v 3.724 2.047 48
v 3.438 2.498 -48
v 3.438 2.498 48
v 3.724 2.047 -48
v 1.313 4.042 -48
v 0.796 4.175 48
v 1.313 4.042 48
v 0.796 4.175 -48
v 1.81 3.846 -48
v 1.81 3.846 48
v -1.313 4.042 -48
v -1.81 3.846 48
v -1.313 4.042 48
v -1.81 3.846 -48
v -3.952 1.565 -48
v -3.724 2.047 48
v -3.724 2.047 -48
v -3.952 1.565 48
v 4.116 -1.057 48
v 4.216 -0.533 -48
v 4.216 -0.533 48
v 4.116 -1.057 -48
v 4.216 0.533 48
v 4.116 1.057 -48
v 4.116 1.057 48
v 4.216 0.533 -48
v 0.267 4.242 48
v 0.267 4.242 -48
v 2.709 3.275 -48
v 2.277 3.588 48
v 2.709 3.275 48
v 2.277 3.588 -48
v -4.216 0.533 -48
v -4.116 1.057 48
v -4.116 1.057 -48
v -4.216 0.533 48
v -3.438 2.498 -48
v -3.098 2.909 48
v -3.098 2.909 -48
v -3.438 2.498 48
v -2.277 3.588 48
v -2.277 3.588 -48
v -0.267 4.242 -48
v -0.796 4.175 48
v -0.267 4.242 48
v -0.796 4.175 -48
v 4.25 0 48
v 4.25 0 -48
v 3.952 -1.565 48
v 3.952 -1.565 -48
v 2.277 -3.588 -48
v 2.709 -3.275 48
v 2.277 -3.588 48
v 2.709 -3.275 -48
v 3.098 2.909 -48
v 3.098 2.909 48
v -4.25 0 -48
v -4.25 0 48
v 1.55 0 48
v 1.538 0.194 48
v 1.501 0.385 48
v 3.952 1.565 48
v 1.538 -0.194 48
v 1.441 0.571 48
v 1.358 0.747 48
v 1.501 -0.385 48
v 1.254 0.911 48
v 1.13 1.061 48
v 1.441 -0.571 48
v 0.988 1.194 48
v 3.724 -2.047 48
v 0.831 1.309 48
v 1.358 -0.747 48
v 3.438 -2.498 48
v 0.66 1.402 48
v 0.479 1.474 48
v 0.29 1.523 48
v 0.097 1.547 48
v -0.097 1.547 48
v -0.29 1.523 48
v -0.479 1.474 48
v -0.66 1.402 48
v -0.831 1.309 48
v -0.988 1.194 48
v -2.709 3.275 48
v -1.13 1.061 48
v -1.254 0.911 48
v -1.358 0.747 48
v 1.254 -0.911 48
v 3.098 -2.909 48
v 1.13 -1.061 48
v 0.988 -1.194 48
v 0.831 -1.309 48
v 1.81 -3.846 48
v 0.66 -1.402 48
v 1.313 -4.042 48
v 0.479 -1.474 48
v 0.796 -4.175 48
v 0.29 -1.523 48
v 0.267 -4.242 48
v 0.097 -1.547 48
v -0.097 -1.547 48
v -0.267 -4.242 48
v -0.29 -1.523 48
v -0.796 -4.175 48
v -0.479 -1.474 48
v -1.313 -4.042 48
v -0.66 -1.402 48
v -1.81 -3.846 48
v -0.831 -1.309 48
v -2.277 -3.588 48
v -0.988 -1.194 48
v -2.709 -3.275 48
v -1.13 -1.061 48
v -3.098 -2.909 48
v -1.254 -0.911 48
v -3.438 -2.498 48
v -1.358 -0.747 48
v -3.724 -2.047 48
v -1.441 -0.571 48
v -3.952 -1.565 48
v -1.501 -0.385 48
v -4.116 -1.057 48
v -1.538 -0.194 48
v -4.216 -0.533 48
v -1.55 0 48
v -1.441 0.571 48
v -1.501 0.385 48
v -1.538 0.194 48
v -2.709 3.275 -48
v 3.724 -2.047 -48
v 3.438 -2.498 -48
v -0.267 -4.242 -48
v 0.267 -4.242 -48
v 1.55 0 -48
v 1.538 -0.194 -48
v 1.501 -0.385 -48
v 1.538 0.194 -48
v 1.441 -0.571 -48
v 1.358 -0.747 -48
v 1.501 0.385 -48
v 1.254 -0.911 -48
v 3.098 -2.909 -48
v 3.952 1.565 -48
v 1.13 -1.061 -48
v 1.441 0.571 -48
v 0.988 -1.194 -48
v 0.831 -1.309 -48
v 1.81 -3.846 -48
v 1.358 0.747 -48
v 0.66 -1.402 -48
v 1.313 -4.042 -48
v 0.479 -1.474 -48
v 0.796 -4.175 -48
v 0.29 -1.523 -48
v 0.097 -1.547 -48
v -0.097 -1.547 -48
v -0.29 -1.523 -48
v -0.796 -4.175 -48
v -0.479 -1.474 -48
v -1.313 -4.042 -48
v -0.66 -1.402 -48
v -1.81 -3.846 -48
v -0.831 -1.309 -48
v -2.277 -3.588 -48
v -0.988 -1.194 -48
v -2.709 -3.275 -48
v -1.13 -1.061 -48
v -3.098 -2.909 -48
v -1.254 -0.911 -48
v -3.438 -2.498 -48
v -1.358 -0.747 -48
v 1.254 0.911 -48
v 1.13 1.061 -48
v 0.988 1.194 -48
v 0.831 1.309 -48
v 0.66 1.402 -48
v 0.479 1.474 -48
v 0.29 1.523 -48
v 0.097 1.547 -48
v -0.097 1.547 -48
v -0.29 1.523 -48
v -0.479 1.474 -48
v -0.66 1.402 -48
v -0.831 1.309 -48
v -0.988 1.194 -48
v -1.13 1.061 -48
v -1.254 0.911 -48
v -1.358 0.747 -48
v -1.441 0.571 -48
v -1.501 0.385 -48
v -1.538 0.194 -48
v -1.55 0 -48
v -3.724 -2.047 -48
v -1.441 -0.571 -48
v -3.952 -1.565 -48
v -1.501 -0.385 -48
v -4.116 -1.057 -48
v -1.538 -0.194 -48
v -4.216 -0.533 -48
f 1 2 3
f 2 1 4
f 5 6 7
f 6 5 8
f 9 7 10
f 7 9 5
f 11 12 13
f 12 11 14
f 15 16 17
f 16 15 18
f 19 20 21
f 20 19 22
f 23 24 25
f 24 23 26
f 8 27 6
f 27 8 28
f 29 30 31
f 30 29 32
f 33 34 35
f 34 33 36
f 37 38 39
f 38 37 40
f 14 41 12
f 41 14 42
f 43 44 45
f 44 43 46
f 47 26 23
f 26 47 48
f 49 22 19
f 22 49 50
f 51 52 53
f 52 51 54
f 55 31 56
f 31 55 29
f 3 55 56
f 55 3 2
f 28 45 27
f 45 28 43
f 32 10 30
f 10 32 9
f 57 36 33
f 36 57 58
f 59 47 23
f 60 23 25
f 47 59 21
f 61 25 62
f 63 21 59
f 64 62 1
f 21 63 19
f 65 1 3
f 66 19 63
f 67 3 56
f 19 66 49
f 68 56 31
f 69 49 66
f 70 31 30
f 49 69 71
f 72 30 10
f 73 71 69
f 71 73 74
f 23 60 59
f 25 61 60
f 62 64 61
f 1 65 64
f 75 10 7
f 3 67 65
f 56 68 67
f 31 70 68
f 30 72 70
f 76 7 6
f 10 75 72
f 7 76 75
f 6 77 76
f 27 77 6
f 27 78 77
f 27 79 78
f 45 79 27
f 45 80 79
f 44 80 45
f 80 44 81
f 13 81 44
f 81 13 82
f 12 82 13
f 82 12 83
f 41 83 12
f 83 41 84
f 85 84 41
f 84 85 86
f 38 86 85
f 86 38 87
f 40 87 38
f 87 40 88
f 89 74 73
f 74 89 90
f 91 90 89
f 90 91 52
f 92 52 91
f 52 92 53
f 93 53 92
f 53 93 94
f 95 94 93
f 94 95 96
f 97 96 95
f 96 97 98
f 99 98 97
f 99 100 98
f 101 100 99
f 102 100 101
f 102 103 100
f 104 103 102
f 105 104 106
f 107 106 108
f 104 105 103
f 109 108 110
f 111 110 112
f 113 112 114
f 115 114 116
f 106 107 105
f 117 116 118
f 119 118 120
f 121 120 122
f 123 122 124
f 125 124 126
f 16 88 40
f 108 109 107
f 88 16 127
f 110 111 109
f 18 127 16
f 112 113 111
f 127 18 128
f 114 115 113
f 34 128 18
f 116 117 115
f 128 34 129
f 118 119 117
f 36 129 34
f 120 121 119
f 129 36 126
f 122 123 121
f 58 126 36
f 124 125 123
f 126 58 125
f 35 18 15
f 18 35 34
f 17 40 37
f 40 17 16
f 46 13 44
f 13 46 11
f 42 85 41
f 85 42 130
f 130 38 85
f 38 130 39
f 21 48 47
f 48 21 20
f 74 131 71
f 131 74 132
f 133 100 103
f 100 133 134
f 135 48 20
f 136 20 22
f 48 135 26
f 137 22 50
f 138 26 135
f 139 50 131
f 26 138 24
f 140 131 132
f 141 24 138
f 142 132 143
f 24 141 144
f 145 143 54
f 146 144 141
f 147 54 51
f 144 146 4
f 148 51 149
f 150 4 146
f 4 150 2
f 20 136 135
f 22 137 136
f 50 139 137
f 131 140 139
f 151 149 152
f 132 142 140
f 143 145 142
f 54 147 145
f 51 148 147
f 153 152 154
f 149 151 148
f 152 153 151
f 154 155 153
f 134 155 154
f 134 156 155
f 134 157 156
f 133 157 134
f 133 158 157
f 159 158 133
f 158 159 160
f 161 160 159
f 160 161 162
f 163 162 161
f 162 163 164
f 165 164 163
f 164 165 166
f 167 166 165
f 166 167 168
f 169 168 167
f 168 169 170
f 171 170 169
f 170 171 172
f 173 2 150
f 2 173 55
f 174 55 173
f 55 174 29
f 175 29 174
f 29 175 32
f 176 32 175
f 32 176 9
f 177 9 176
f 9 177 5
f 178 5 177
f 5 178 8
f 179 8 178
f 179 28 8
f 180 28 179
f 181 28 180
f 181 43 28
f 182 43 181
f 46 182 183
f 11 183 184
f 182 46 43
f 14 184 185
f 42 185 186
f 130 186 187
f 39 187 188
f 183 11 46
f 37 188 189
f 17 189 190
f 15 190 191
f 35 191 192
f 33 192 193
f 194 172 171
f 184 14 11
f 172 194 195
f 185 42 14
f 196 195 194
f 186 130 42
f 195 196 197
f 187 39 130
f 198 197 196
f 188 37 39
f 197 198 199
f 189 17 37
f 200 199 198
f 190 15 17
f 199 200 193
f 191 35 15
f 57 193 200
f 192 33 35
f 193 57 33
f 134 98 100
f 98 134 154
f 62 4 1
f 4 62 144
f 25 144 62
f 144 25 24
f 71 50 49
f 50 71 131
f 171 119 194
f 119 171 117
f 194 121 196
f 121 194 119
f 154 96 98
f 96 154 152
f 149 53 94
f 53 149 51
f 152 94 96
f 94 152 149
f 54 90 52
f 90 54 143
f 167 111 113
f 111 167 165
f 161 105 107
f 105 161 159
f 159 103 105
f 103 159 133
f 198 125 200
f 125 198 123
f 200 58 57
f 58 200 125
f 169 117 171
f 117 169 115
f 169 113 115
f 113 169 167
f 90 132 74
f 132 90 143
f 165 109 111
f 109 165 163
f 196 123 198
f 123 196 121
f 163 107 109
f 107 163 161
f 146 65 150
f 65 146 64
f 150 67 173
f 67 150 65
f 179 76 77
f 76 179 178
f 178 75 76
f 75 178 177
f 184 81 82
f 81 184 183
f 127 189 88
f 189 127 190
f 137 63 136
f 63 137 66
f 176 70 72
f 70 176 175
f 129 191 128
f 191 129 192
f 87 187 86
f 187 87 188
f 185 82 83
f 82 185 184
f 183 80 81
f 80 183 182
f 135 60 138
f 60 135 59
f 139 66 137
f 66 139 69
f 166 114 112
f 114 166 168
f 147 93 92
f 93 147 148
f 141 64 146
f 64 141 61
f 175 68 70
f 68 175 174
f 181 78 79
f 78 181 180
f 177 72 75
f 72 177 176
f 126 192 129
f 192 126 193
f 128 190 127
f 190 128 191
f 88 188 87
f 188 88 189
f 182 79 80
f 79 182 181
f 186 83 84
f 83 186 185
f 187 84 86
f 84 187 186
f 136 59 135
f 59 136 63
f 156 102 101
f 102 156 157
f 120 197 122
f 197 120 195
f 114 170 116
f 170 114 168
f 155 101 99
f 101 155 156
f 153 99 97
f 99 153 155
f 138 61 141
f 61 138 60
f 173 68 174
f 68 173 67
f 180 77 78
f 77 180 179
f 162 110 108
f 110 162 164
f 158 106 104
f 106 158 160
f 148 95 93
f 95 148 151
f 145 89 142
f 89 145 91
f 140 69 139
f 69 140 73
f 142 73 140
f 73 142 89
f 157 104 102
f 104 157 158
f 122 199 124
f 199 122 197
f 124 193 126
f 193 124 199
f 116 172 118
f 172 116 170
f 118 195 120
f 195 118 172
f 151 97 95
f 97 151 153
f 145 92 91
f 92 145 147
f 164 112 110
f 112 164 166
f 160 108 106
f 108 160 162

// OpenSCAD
$fn = 50;


difference() {
	union() {
		translate(v = [0, 0, -48.0000000000]) {
			cylinder(h = 96, r = 4.2500000000);
		}
	}
	union() {
		translate(v = [0, 0, -100.0000000000]) {
			cylinder(h = 200, r = 1.5500000000);
		}
	}
}
